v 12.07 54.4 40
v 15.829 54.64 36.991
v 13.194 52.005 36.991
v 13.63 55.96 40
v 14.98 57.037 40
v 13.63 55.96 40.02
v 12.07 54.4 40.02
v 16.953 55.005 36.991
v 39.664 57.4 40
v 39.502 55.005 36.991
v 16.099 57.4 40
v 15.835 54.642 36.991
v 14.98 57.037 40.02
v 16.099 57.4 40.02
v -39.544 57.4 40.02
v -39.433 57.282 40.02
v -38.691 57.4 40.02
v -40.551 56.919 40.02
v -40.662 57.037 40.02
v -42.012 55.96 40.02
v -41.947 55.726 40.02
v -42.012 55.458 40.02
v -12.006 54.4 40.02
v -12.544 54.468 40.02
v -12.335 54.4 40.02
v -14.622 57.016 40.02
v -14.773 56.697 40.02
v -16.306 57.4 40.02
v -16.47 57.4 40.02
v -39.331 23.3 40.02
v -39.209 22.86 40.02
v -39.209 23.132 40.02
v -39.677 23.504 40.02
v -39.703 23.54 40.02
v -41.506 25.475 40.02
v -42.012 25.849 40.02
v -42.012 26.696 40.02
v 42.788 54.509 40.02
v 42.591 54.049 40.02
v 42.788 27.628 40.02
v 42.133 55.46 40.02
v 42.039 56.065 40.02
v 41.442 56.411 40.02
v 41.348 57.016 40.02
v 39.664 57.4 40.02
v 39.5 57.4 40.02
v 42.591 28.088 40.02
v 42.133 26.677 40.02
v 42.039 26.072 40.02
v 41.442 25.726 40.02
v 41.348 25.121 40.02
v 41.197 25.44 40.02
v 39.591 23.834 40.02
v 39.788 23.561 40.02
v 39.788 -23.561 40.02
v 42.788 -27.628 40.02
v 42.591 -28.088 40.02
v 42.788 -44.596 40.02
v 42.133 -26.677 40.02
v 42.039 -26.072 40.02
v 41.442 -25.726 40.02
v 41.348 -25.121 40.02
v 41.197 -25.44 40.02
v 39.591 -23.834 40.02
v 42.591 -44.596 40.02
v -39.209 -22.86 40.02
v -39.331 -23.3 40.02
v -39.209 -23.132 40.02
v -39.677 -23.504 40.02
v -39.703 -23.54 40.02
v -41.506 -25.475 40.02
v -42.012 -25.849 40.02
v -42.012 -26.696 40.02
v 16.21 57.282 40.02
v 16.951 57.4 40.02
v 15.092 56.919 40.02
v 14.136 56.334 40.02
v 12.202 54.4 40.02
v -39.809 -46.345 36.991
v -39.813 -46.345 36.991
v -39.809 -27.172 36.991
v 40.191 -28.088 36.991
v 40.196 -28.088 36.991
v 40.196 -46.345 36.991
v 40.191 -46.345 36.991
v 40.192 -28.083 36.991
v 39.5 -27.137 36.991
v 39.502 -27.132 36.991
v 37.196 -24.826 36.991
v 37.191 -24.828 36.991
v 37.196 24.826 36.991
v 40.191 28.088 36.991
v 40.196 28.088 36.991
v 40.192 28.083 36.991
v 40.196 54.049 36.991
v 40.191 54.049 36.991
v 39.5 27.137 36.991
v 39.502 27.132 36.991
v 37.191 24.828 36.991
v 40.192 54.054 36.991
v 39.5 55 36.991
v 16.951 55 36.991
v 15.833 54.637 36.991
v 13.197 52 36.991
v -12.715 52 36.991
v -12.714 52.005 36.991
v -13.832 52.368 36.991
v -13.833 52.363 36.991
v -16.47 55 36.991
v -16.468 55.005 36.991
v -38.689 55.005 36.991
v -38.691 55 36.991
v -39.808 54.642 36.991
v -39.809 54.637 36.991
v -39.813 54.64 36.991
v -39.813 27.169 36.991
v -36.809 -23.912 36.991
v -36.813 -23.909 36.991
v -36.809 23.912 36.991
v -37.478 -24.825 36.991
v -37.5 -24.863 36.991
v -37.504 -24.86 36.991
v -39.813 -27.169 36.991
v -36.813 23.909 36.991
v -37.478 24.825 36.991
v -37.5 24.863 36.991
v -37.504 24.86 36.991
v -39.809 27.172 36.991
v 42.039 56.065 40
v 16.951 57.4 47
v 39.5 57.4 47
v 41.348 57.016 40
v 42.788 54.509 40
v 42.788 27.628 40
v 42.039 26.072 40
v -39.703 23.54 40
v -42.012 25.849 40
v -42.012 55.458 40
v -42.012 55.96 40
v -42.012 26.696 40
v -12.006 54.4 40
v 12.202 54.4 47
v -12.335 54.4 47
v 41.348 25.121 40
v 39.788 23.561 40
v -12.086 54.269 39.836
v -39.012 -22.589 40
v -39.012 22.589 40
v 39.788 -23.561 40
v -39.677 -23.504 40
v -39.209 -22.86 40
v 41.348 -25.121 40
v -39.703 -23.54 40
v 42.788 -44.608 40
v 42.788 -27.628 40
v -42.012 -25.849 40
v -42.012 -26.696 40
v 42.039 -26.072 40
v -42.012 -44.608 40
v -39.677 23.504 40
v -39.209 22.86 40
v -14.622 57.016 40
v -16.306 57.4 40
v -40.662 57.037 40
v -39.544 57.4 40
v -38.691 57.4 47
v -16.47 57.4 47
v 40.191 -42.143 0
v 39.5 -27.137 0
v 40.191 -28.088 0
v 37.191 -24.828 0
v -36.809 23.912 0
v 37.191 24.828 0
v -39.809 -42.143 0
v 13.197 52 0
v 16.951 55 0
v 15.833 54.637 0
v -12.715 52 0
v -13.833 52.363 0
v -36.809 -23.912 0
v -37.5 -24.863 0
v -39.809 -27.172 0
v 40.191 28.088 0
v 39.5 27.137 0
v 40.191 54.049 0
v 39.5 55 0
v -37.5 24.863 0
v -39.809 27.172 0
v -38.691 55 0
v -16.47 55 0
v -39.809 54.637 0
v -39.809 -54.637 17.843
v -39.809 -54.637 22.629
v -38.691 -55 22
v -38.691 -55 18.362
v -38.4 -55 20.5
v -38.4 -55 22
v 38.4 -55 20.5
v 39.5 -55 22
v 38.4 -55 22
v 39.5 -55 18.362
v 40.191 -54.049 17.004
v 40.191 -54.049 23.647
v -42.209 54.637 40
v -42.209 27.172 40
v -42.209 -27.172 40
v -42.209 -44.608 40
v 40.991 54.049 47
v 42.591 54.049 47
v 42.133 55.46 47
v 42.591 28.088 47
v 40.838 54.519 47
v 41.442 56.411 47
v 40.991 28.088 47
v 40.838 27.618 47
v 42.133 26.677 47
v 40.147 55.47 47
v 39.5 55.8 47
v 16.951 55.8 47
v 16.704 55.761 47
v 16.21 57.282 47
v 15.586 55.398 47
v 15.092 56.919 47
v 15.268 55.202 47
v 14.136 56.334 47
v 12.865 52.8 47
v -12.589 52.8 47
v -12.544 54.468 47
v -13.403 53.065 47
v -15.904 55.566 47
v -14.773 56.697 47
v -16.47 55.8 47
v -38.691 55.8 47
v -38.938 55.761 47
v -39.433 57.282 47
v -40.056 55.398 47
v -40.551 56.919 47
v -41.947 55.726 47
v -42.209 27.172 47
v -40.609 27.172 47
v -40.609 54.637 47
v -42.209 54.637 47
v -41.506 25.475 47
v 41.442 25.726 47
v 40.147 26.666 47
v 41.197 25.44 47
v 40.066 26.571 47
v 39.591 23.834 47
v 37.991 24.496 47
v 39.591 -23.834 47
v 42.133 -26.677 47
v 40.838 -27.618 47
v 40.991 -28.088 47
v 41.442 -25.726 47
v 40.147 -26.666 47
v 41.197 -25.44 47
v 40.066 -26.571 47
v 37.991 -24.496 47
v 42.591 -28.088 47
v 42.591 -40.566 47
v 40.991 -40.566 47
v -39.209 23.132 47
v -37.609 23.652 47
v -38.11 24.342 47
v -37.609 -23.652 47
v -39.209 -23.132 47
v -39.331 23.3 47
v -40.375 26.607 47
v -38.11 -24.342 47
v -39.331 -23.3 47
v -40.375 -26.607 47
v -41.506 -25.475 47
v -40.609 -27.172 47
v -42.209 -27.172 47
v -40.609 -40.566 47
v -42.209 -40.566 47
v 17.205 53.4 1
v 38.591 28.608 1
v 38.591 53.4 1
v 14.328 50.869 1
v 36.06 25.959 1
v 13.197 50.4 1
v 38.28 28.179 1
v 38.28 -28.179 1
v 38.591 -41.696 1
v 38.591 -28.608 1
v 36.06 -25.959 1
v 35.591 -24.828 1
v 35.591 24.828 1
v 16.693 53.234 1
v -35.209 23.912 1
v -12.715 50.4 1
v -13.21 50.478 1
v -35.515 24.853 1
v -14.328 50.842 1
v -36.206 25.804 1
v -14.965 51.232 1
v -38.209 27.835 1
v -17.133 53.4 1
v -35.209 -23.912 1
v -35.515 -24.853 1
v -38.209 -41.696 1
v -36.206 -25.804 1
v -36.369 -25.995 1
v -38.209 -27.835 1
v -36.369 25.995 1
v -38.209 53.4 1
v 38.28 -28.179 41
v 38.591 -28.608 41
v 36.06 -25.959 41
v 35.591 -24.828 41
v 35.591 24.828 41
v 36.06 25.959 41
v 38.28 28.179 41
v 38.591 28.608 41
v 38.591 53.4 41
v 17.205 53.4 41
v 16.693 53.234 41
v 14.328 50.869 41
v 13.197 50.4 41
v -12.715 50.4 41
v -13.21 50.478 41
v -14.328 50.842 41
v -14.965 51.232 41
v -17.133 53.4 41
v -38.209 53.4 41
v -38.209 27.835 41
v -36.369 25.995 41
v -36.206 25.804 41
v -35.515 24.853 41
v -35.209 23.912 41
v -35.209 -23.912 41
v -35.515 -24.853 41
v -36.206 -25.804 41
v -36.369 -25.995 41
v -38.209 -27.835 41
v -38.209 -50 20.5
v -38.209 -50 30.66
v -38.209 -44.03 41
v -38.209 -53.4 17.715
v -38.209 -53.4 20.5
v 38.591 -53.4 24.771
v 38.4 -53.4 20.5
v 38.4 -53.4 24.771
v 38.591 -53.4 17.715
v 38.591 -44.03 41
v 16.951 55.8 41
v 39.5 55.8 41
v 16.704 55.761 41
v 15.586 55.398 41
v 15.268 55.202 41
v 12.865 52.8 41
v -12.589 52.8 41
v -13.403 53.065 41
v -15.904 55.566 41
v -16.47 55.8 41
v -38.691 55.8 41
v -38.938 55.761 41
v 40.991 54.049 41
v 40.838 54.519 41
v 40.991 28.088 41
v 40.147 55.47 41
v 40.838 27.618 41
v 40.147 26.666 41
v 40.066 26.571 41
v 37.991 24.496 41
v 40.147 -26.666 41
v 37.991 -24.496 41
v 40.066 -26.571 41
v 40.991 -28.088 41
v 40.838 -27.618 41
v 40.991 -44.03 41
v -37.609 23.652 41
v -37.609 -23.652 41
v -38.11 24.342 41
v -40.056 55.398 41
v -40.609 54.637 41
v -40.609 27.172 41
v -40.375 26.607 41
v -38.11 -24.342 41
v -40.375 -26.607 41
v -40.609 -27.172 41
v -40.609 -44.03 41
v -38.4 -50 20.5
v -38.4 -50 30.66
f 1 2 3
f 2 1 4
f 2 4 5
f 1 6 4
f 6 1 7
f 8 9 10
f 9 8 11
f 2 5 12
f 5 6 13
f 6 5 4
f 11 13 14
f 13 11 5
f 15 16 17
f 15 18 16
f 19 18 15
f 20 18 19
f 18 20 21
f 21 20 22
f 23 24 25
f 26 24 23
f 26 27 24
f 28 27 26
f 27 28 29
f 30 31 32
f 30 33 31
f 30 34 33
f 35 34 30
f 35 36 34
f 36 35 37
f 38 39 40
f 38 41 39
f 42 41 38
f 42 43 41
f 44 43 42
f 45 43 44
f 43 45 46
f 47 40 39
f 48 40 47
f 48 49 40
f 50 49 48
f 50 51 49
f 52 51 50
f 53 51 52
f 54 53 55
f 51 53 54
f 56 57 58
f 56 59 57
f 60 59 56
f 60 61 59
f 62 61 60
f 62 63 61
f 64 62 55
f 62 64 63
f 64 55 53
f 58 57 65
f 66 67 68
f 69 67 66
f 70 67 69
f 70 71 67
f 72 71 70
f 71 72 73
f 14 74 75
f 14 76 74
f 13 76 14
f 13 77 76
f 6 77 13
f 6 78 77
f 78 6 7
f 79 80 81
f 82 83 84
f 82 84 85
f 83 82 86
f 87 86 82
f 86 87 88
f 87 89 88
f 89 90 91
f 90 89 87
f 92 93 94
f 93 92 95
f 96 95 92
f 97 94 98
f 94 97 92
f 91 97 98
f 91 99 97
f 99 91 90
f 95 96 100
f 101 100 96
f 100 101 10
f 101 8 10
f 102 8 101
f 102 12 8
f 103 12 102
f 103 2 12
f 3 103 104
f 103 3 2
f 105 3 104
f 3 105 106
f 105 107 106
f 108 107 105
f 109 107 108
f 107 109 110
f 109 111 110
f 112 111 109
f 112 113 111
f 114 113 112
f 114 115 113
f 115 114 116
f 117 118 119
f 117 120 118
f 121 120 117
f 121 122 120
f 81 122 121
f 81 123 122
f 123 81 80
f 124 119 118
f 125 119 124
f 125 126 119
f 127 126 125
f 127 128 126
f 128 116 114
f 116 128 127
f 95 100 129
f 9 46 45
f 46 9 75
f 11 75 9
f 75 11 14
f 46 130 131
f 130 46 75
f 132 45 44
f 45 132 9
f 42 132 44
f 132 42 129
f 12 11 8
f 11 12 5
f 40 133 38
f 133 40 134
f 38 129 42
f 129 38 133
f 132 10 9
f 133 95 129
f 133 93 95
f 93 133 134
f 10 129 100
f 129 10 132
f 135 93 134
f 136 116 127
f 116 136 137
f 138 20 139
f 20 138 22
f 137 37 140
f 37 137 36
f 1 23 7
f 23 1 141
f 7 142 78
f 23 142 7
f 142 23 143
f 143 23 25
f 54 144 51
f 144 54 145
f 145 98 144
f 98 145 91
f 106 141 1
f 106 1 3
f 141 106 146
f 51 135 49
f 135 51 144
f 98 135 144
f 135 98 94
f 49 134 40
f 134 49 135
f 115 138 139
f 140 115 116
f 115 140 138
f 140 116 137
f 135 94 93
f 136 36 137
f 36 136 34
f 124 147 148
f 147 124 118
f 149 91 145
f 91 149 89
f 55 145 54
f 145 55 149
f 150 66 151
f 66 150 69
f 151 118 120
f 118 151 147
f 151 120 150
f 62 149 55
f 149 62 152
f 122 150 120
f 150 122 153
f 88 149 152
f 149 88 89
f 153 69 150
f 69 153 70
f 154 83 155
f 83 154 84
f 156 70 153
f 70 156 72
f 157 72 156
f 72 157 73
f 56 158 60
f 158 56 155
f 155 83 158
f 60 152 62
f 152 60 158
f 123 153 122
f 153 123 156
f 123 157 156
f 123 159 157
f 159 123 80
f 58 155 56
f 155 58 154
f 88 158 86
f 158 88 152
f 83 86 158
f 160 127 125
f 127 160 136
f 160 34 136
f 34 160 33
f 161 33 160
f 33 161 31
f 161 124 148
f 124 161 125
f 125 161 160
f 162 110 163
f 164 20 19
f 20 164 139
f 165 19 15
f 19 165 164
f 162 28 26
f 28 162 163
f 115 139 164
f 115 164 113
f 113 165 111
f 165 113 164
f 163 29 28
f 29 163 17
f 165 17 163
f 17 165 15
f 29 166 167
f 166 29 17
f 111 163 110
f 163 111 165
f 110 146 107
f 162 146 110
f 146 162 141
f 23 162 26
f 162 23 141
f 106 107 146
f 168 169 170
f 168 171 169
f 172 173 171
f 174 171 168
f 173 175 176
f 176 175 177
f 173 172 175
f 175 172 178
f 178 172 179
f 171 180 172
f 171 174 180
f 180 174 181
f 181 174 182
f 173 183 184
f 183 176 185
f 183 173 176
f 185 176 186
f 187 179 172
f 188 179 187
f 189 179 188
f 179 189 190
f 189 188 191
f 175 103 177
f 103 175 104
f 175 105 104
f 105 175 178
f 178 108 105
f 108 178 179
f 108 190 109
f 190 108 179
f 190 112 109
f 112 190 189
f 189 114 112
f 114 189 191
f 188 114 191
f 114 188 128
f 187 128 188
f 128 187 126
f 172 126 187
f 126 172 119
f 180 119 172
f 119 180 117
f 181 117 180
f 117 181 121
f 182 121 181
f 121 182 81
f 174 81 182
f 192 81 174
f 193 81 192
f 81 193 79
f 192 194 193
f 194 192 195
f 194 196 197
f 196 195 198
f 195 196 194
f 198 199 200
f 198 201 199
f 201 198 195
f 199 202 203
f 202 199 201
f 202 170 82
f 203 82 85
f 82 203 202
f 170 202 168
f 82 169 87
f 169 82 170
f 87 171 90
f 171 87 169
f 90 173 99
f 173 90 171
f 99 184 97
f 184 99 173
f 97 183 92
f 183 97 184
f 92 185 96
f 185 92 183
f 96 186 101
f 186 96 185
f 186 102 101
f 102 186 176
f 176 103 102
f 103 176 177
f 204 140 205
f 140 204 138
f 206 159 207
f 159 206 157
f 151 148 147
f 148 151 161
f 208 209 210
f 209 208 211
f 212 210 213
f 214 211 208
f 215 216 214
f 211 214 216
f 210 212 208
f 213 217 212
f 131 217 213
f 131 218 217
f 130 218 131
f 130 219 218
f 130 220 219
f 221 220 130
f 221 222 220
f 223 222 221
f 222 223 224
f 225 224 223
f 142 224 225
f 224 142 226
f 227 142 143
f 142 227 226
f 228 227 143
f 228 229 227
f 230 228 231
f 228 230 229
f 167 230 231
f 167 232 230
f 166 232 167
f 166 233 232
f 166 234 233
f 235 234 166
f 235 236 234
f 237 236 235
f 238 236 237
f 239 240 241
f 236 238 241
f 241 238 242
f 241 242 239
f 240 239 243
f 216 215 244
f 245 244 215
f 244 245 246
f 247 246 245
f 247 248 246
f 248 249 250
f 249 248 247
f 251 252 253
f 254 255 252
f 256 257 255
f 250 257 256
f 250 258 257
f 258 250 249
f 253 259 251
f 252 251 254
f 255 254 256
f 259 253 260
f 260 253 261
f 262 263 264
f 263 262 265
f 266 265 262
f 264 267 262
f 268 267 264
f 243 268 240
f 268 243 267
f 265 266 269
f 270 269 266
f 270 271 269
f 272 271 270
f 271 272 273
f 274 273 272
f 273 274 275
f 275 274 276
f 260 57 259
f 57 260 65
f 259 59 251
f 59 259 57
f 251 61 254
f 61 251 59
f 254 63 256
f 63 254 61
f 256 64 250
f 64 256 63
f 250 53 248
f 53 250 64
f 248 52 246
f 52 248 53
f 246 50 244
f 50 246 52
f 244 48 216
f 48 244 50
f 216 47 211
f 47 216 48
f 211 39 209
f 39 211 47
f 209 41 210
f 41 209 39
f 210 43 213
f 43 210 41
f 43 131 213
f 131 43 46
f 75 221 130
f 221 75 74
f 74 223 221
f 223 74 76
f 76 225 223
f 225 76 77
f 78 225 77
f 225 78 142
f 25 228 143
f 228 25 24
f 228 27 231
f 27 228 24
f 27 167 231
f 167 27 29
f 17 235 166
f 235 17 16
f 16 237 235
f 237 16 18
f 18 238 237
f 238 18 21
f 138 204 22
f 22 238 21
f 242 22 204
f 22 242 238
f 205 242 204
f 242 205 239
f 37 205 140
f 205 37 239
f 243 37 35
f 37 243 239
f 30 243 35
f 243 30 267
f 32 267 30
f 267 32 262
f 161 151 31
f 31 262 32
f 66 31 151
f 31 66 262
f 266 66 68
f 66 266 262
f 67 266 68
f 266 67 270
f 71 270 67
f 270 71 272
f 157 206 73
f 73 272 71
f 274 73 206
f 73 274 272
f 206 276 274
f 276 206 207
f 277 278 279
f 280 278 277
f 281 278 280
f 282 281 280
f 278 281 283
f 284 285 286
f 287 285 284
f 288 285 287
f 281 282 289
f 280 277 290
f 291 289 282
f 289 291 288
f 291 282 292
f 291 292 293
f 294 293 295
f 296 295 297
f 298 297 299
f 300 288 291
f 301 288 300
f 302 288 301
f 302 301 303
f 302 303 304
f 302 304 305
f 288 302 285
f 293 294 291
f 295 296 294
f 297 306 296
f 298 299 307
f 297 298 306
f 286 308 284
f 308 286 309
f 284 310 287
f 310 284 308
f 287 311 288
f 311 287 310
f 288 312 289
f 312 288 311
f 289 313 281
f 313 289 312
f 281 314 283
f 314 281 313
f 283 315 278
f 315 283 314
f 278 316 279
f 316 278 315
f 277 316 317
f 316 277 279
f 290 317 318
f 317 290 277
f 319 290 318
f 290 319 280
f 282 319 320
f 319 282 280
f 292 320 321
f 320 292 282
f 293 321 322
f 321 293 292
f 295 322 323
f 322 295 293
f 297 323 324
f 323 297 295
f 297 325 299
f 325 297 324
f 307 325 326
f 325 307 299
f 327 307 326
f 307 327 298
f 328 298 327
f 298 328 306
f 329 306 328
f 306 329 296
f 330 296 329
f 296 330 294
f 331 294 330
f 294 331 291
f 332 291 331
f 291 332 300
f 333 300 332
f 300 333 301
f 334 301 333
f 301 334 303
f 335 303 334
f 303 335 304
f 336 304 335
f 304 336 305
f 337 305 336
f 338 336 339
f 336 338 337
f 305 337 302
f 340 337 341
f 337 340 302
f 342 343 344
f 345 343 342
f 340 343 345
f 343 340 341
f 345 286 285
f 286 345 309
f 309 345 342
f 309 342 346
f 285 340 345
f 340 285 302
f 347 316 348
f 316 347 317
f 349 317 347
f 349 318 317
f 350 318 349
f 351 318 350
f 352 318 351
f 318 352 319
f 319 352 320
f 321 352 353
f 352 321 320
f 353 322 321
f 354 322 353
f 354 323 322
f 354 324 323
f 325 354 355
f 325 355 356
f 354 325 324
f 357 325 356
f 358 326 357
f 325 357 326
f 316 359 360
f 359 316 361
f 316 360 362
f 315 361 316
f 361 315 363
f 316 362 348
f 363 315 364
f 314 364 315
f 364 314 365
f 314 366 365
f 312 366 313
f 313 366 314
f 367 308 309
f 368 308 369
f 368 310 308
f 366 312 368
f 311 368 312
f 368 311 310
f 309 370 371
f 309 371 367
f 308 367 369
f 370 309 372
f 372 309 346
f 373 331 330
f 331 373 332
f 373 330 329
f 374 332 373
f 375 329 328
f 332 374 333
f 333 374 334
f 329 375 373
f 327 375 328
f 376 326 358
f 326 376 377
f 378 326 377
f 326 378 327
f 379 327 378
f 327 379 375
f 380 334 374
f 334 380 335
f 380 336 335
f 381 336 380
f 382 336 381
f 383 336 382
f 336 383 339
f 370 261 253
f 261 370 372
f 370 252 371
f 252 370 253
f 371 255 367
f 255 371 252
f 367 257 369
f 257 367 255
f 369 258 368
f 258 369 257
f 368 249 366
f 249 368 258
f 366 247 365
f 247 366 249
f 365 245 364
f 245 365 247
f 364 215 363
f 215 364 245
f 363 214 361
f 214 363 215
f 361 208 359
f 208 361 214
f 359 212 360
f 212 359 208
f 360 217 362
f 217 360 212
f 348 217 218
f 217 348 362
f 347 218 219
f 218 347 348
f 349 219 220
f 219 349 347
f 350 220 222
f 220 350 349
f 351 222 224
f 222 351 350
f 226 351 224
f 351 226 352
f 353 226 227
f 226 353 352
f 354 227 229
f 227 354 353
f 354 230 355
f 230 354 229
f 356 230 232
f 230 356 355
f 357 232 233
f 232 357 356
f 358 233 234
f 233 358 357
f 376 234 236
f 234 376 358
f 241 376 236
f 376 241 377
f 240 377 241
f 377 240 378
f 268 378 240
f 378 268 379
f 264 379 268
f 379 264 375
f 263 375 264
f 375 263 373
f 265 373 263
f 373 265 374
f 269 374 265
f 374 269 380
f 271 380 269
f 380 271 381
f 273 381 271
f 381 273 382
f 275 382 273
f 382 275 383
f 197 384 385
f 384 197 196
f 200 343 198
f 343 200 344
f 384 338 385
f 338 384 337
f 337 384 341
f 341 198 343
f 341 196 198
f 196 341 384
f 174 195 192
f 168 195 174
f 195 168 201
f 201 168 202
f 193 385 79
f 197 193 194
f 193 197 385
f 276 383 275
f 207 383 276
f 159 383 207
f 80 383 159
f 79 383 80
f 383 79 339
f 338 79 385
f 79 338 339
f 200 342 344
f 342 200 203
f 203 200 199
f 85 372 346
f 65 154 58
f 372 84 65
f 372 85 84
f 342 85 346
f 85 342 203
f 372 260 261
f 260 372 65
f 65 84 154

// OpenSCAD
// file: scad-utils/morphology.scad
// Copyright (c) 2013 Oskar Linde. All rights reserved.
// License: BSD
//
// This library contains basic 2D morphology operations
//
// outset(d=1)            - creates a polygon at an offset d outside a 2D shape
// inset(d=1)             - creates a polygon at an offset d inside a 2D shape
// fillet(r=1)            - adds fillets of radius r to all concave corners of a 2D shape
// rounding(r=1)          - adds rounding to all convex corners of a 2D shape
// shell(d,center=false)  - makes a shell of width d along the edge of a 2D shape
//                        - positive values of d places the shell on the outside
//                        - negative values of d places the shell on the inside
//                        - center=true and positive d places the shell centered on the edge

module outset(d=1) {
	// Bug workaround for older OpenSCAD versions
	if (version_num() < 20130424) render() outset_extruded(d) children();
	else minkowski() {
		circle(r=d);
		children();
	}
}

module outset_extruded(d=1) {
   projection(cut=true) minkowski() {
        cylinder(r=d);
        linear_extrude(center=true) children();
   }
}

module inset(d=1) {
	 render() inverse() outset(d=d) inverse() children();
}

module fillet(r=1) {
	inset(d=r) render() outset(d=r) children();
}

module rounding(r=1) {
	outset(d=r) inset(d=r) children();
}

module shell(d,center=false) {
	if (center && d > 0) {
		difference() {
			outset(d=d/2) children();
			inset(d=d/2) children();
		}
	}
	if (!center && d > 0) {
		difference() {
			outset(d=d) children();
			children();
		}
	}
	if (!center && d < 0) {
		difference() {
			children();
			inset(d=-d) children();
		}
	}
	if (d == 0) children();
}


// Below are for internal use only

module inverse() {
	difference() {
		square(1e5,center=true);
		children();
	}
}


// TEST CODE

use <mirror.scad>

module arrow(l=1,w=.6,t=0.15) {
	mirror_y() polygon([[0,0],[l,0],[l-w/2,w/2],[l-w/2-sqrt(2)*t,w/2],[l-t/2-sqrt(2)*t,t/2],[0,t/2]]);
}

module shape() {
	polygon([[0,0],[1,0],[1.5,1],[2.5,1],[2,-1],[0,-1]]);
}

if(0) assign($fn=32) {

	for (p = [0:10*3-1]) assign(o=floor(p/3)) {
		translate([(p%3)*2.5,-o*3]) {
			//%if (p % 3 == 1) translate([0,0,1]) shape();
			if (p % 3 == 0) shape();
			if (p % 3 == 1) translate([0.6,0]) arrow();
			if (p % 3 == 2) {
				if (o == 0) inset(d=0.3) shape();
				if (o == 1) outset(d=0.3) shape();
				if (o == 2) rounding(r=0.3) shape();
				if (o == 3) fillet(r=0.3) shape();
				if (o == 4) shell(d=0.3) shape();
				if (o == 5) shell(d=-0.3) shape();
				if (o == 6) shell(d=0.3,center=true) shape();
				if (o == 7) rounding(r=0.3) fillet(r=0.3) shape();
				if (o == 8) shell(d=0.3,center=true) fillet(r=0.3) rounding(r=0.3) shape();
				if (o == 9) shell(d=-0.3) fillet(r=0.3) rounding(r=0.3) shape();
			}
		}
	}
}
// file: scad-utils/mirror.scad
// Copyright (c) 2013 Oskar Linde. All rights reserved.
// License: BSD
//
// This library contains simple mirroring functions
//
// mirror_x()
// mirror_y()
// mirror_z()


module mirror_x() {
  union() {
    child();
    scale([-1,1,1]) child();
  }
}

module mirror_y() {
  union() {
    child();
    scale([1,-1,1]) child();
  }
}

module mirror_z() {
  union() {
    child();
    scale([1,1,-1]) child();
  }
}
// main file
include <scad-utils/mirror.scad>
include <scad-utils/morphology.scad>

/* Parameters */
BODY_X = 80;
BODY_Y = 110;
BODY_Z = 47;

module base(r=1) {
  basePoints = [
    [BODY_X/2, 0],
    [0, 0],
    [0, BODY_Y/4],
    [3, BODY_Y/4 + 3],
    [3, BODY_Y/4 * 3 - 3],
    [0, BODY_Y/4 * 3],
    [0, BODY_Y/4 * 4],
    [0 + BODY_X/3 - 3, BODY_Y/4 * 4],
    [0 + BODY_X/3, BODY_Y/4 * 4 - 3],
    [BODY_X/2, BODY_Y/4 * 4 - 3],
  ];

  pointsCentered = [for (p=basePoints)
    [
      p[0] - BODY_X/2,
      p[1] - BODY_Y/2
    ]
  ];

  points = concat(
    pointsCentered,
    [for (p=pointsCentered) [p[0]*-1, p[1]] ]
  );

  rounding(r=r)
  polygon(points=points);
}

/* Parameters 2 */
WALL_THICK = 0.4*4;

HOLDER_Z_TOTAL = 10;
HOLDER_Z_JOINT = 3;
HOLDER_Z = HOLDER_Z_TOTAL - HOLDER_Z_JOINT;
HOLDER_DELTA = 0.8+0.4*4;
HOLDER_CLEARANCE = 0.4*2;

FRONT_EDGE_DEG = 35;
FRONT_EDGE_LEN = 20;

FRONT_EDGE_TOP_DEG = 30;
FRONT_EDGE_TOP_LEN = 25;

module body() {
  difference() {
    union() {
      // inner
      linear_extrude(height=BODY_Z-HOLDER_Z_TOTAL, center=!true, convexity=10, twist=0)
      base();

      // joint
      translate([0, 0, BODY_Z-HOLDER_Z])
      minkowski() {
        hull() {
          linear_extrude(height=0.01, center=!true)
          rounding(r=2-0.01)
          square(size=[HOLDER_DELTA*2, HOLDER_DELTA*2], center=true);
          translate([0, 0, -HOLDER_Z_JOINT])
          sphere(r=0.01);
        }

        linear_extrude(
          height=0.01,
          center=!true,
          convexity=10
        )
        base();
      }

      // holder
      translate([0, 0, BODY_Z-HOLDER_Z])
      linear_extrude(height=HOLDER_Z, center=!true, convexity=10, twist=0)
      offset(r=HOLDER_DELTA)
      base();
    }

    // inner space
    difference() {
      translate([0, 0, 1])
      linear_extrude(height=BODY_Z, center=!true, convexity=10, twist=0)
      offset(r=-WALL_THICK)
      base();

      // frontEdge
      frontEdge();
    }

    // holder inner space
    translate([0, 0, BODY_Z-HOLDER_Z+1])
    linear_extrude(height=HOLDER_Z, center=!true, convexity=10, twist=0)
    offset(r=HOLDER_CLEARANCE)
    base();

    // front space
    translate([0, -BODY_Y/2, BODY_Z/2 + FRONT_EDGE_LEN + 1])
    cube(size=[BODY_X-WALL_THICK*2, 10, BODY_Z+1], center=true);

    // frontEdge
    translate([0, -1*sin(FRONT_EDGE_DEG), -1*cos(FRONT_EDGE_DEG)])
    frontEdge();

    // frontEdgeTop
    translate([0, -1*sin(FRONT_EDGE_TOP_DEG), -1*cos(FRONT_EDGE_TOP_DEG)])
    frontEdgeTop();
  }
}

module frontEdge(args) {
  translate([0, -BODY_Y/2, 0])
  rotate([FRONT_EDGE_DEG, 0, 0])
  cube(
    size=[
      BODY_X+10,
      FRONT_EDGE_LEN*2*sin(FRONT_EDGE_DEG),
      FRONT_EDGE_LEN*2*cos(FRONT_EDGE_DEG)
    ],
    center=true
  );
}

module frontEdgeTop() {
  translate([0, -BODY_Y/2, BODY_Z])
  rotate([180-FRONT_EDGE_TOP_DEG, 0, 0])
  cube(
    size=[
      BODY_X+10,
      FRONT_EDGE_TOP_LEN*2*sin(FRONT_EDGE_TOP_DEG),
      FRONT_EDGE_TOP_LEN*2*cos(FRONT_EDGE_TOP_DEG)
    ],
    center=true
  );
}

body();


/* Show dimentions */
module dimenText(text, len, pos=0) {
  module vert(t=0.5) {
    translate([0, len/2 - t/2, -3/2])
    rotate([90, 0, 90])
    square(size=[t, 3], center=true);
  }

  module dimen() {
    rotate([90, 0, 90])
    square(size=[len, 0.5], center=true);

    vert();
    mirror_y()
    vert();
  }

  textAligns = [
    "center",
    "left",
    "right",
    "center",
  ];
  textPositions = [
    [0, 0, 5],
    [0, 5, 0],
    [0, -5, 0],
    [0, 0, -10],
  ];
  dimenRotations = [
    [0, 0, 0],
    [-90, 0, 0],
    [90, 0, 0],
    [0, 180, 0],
  ];

  color("red") {
    translate(textPositions[pos])
    rotate([90, 0, 90])
    text(text, size=4, font="Sans", halign=textAligns[pos], valign="center",
    spacing=1.0, direction="ltr", language="en", script="latin", center=true);

    rotate(dimenRotations[pos])
    dimen();
  }
}

translate([0, 0, BODY_Z + 8])
dimenText("BODY_Y", BODY_Y, 0);

translate([0, BODY_Y/2 + 8, BODY_Z/2])
dimenText("BODY_Z", BODY_Z, 1);

translate([0, BODY_Y/2 + 8 + 8, HOLDER_Z_TOTAL/2 + BODY_Z - HOLDER_Z_TOTAL])
dimenText("HOLDER_Z_TOTAL", HOLDER_Z_TOTAL, 1);

translate([0, -BODY_Y/2 - 8, HOLDER_Z_JOINT/2 + BODY_Z - HOLDER_Z_TOTAL])
dimenText("HOLDER_Z_JOINT", HOLDER_Z_JOINT, 2);

translate([0, -BODY_Y/2, (FRONT_EDGE_LEN)*sin(FRONT_EDGE_DEG)/2])
rotate([FRONT_EDGE_DEG, 0, 0])
dimenText("FRONT_EDGE_LEN", FRONT_EDGE_LEN, 2);
